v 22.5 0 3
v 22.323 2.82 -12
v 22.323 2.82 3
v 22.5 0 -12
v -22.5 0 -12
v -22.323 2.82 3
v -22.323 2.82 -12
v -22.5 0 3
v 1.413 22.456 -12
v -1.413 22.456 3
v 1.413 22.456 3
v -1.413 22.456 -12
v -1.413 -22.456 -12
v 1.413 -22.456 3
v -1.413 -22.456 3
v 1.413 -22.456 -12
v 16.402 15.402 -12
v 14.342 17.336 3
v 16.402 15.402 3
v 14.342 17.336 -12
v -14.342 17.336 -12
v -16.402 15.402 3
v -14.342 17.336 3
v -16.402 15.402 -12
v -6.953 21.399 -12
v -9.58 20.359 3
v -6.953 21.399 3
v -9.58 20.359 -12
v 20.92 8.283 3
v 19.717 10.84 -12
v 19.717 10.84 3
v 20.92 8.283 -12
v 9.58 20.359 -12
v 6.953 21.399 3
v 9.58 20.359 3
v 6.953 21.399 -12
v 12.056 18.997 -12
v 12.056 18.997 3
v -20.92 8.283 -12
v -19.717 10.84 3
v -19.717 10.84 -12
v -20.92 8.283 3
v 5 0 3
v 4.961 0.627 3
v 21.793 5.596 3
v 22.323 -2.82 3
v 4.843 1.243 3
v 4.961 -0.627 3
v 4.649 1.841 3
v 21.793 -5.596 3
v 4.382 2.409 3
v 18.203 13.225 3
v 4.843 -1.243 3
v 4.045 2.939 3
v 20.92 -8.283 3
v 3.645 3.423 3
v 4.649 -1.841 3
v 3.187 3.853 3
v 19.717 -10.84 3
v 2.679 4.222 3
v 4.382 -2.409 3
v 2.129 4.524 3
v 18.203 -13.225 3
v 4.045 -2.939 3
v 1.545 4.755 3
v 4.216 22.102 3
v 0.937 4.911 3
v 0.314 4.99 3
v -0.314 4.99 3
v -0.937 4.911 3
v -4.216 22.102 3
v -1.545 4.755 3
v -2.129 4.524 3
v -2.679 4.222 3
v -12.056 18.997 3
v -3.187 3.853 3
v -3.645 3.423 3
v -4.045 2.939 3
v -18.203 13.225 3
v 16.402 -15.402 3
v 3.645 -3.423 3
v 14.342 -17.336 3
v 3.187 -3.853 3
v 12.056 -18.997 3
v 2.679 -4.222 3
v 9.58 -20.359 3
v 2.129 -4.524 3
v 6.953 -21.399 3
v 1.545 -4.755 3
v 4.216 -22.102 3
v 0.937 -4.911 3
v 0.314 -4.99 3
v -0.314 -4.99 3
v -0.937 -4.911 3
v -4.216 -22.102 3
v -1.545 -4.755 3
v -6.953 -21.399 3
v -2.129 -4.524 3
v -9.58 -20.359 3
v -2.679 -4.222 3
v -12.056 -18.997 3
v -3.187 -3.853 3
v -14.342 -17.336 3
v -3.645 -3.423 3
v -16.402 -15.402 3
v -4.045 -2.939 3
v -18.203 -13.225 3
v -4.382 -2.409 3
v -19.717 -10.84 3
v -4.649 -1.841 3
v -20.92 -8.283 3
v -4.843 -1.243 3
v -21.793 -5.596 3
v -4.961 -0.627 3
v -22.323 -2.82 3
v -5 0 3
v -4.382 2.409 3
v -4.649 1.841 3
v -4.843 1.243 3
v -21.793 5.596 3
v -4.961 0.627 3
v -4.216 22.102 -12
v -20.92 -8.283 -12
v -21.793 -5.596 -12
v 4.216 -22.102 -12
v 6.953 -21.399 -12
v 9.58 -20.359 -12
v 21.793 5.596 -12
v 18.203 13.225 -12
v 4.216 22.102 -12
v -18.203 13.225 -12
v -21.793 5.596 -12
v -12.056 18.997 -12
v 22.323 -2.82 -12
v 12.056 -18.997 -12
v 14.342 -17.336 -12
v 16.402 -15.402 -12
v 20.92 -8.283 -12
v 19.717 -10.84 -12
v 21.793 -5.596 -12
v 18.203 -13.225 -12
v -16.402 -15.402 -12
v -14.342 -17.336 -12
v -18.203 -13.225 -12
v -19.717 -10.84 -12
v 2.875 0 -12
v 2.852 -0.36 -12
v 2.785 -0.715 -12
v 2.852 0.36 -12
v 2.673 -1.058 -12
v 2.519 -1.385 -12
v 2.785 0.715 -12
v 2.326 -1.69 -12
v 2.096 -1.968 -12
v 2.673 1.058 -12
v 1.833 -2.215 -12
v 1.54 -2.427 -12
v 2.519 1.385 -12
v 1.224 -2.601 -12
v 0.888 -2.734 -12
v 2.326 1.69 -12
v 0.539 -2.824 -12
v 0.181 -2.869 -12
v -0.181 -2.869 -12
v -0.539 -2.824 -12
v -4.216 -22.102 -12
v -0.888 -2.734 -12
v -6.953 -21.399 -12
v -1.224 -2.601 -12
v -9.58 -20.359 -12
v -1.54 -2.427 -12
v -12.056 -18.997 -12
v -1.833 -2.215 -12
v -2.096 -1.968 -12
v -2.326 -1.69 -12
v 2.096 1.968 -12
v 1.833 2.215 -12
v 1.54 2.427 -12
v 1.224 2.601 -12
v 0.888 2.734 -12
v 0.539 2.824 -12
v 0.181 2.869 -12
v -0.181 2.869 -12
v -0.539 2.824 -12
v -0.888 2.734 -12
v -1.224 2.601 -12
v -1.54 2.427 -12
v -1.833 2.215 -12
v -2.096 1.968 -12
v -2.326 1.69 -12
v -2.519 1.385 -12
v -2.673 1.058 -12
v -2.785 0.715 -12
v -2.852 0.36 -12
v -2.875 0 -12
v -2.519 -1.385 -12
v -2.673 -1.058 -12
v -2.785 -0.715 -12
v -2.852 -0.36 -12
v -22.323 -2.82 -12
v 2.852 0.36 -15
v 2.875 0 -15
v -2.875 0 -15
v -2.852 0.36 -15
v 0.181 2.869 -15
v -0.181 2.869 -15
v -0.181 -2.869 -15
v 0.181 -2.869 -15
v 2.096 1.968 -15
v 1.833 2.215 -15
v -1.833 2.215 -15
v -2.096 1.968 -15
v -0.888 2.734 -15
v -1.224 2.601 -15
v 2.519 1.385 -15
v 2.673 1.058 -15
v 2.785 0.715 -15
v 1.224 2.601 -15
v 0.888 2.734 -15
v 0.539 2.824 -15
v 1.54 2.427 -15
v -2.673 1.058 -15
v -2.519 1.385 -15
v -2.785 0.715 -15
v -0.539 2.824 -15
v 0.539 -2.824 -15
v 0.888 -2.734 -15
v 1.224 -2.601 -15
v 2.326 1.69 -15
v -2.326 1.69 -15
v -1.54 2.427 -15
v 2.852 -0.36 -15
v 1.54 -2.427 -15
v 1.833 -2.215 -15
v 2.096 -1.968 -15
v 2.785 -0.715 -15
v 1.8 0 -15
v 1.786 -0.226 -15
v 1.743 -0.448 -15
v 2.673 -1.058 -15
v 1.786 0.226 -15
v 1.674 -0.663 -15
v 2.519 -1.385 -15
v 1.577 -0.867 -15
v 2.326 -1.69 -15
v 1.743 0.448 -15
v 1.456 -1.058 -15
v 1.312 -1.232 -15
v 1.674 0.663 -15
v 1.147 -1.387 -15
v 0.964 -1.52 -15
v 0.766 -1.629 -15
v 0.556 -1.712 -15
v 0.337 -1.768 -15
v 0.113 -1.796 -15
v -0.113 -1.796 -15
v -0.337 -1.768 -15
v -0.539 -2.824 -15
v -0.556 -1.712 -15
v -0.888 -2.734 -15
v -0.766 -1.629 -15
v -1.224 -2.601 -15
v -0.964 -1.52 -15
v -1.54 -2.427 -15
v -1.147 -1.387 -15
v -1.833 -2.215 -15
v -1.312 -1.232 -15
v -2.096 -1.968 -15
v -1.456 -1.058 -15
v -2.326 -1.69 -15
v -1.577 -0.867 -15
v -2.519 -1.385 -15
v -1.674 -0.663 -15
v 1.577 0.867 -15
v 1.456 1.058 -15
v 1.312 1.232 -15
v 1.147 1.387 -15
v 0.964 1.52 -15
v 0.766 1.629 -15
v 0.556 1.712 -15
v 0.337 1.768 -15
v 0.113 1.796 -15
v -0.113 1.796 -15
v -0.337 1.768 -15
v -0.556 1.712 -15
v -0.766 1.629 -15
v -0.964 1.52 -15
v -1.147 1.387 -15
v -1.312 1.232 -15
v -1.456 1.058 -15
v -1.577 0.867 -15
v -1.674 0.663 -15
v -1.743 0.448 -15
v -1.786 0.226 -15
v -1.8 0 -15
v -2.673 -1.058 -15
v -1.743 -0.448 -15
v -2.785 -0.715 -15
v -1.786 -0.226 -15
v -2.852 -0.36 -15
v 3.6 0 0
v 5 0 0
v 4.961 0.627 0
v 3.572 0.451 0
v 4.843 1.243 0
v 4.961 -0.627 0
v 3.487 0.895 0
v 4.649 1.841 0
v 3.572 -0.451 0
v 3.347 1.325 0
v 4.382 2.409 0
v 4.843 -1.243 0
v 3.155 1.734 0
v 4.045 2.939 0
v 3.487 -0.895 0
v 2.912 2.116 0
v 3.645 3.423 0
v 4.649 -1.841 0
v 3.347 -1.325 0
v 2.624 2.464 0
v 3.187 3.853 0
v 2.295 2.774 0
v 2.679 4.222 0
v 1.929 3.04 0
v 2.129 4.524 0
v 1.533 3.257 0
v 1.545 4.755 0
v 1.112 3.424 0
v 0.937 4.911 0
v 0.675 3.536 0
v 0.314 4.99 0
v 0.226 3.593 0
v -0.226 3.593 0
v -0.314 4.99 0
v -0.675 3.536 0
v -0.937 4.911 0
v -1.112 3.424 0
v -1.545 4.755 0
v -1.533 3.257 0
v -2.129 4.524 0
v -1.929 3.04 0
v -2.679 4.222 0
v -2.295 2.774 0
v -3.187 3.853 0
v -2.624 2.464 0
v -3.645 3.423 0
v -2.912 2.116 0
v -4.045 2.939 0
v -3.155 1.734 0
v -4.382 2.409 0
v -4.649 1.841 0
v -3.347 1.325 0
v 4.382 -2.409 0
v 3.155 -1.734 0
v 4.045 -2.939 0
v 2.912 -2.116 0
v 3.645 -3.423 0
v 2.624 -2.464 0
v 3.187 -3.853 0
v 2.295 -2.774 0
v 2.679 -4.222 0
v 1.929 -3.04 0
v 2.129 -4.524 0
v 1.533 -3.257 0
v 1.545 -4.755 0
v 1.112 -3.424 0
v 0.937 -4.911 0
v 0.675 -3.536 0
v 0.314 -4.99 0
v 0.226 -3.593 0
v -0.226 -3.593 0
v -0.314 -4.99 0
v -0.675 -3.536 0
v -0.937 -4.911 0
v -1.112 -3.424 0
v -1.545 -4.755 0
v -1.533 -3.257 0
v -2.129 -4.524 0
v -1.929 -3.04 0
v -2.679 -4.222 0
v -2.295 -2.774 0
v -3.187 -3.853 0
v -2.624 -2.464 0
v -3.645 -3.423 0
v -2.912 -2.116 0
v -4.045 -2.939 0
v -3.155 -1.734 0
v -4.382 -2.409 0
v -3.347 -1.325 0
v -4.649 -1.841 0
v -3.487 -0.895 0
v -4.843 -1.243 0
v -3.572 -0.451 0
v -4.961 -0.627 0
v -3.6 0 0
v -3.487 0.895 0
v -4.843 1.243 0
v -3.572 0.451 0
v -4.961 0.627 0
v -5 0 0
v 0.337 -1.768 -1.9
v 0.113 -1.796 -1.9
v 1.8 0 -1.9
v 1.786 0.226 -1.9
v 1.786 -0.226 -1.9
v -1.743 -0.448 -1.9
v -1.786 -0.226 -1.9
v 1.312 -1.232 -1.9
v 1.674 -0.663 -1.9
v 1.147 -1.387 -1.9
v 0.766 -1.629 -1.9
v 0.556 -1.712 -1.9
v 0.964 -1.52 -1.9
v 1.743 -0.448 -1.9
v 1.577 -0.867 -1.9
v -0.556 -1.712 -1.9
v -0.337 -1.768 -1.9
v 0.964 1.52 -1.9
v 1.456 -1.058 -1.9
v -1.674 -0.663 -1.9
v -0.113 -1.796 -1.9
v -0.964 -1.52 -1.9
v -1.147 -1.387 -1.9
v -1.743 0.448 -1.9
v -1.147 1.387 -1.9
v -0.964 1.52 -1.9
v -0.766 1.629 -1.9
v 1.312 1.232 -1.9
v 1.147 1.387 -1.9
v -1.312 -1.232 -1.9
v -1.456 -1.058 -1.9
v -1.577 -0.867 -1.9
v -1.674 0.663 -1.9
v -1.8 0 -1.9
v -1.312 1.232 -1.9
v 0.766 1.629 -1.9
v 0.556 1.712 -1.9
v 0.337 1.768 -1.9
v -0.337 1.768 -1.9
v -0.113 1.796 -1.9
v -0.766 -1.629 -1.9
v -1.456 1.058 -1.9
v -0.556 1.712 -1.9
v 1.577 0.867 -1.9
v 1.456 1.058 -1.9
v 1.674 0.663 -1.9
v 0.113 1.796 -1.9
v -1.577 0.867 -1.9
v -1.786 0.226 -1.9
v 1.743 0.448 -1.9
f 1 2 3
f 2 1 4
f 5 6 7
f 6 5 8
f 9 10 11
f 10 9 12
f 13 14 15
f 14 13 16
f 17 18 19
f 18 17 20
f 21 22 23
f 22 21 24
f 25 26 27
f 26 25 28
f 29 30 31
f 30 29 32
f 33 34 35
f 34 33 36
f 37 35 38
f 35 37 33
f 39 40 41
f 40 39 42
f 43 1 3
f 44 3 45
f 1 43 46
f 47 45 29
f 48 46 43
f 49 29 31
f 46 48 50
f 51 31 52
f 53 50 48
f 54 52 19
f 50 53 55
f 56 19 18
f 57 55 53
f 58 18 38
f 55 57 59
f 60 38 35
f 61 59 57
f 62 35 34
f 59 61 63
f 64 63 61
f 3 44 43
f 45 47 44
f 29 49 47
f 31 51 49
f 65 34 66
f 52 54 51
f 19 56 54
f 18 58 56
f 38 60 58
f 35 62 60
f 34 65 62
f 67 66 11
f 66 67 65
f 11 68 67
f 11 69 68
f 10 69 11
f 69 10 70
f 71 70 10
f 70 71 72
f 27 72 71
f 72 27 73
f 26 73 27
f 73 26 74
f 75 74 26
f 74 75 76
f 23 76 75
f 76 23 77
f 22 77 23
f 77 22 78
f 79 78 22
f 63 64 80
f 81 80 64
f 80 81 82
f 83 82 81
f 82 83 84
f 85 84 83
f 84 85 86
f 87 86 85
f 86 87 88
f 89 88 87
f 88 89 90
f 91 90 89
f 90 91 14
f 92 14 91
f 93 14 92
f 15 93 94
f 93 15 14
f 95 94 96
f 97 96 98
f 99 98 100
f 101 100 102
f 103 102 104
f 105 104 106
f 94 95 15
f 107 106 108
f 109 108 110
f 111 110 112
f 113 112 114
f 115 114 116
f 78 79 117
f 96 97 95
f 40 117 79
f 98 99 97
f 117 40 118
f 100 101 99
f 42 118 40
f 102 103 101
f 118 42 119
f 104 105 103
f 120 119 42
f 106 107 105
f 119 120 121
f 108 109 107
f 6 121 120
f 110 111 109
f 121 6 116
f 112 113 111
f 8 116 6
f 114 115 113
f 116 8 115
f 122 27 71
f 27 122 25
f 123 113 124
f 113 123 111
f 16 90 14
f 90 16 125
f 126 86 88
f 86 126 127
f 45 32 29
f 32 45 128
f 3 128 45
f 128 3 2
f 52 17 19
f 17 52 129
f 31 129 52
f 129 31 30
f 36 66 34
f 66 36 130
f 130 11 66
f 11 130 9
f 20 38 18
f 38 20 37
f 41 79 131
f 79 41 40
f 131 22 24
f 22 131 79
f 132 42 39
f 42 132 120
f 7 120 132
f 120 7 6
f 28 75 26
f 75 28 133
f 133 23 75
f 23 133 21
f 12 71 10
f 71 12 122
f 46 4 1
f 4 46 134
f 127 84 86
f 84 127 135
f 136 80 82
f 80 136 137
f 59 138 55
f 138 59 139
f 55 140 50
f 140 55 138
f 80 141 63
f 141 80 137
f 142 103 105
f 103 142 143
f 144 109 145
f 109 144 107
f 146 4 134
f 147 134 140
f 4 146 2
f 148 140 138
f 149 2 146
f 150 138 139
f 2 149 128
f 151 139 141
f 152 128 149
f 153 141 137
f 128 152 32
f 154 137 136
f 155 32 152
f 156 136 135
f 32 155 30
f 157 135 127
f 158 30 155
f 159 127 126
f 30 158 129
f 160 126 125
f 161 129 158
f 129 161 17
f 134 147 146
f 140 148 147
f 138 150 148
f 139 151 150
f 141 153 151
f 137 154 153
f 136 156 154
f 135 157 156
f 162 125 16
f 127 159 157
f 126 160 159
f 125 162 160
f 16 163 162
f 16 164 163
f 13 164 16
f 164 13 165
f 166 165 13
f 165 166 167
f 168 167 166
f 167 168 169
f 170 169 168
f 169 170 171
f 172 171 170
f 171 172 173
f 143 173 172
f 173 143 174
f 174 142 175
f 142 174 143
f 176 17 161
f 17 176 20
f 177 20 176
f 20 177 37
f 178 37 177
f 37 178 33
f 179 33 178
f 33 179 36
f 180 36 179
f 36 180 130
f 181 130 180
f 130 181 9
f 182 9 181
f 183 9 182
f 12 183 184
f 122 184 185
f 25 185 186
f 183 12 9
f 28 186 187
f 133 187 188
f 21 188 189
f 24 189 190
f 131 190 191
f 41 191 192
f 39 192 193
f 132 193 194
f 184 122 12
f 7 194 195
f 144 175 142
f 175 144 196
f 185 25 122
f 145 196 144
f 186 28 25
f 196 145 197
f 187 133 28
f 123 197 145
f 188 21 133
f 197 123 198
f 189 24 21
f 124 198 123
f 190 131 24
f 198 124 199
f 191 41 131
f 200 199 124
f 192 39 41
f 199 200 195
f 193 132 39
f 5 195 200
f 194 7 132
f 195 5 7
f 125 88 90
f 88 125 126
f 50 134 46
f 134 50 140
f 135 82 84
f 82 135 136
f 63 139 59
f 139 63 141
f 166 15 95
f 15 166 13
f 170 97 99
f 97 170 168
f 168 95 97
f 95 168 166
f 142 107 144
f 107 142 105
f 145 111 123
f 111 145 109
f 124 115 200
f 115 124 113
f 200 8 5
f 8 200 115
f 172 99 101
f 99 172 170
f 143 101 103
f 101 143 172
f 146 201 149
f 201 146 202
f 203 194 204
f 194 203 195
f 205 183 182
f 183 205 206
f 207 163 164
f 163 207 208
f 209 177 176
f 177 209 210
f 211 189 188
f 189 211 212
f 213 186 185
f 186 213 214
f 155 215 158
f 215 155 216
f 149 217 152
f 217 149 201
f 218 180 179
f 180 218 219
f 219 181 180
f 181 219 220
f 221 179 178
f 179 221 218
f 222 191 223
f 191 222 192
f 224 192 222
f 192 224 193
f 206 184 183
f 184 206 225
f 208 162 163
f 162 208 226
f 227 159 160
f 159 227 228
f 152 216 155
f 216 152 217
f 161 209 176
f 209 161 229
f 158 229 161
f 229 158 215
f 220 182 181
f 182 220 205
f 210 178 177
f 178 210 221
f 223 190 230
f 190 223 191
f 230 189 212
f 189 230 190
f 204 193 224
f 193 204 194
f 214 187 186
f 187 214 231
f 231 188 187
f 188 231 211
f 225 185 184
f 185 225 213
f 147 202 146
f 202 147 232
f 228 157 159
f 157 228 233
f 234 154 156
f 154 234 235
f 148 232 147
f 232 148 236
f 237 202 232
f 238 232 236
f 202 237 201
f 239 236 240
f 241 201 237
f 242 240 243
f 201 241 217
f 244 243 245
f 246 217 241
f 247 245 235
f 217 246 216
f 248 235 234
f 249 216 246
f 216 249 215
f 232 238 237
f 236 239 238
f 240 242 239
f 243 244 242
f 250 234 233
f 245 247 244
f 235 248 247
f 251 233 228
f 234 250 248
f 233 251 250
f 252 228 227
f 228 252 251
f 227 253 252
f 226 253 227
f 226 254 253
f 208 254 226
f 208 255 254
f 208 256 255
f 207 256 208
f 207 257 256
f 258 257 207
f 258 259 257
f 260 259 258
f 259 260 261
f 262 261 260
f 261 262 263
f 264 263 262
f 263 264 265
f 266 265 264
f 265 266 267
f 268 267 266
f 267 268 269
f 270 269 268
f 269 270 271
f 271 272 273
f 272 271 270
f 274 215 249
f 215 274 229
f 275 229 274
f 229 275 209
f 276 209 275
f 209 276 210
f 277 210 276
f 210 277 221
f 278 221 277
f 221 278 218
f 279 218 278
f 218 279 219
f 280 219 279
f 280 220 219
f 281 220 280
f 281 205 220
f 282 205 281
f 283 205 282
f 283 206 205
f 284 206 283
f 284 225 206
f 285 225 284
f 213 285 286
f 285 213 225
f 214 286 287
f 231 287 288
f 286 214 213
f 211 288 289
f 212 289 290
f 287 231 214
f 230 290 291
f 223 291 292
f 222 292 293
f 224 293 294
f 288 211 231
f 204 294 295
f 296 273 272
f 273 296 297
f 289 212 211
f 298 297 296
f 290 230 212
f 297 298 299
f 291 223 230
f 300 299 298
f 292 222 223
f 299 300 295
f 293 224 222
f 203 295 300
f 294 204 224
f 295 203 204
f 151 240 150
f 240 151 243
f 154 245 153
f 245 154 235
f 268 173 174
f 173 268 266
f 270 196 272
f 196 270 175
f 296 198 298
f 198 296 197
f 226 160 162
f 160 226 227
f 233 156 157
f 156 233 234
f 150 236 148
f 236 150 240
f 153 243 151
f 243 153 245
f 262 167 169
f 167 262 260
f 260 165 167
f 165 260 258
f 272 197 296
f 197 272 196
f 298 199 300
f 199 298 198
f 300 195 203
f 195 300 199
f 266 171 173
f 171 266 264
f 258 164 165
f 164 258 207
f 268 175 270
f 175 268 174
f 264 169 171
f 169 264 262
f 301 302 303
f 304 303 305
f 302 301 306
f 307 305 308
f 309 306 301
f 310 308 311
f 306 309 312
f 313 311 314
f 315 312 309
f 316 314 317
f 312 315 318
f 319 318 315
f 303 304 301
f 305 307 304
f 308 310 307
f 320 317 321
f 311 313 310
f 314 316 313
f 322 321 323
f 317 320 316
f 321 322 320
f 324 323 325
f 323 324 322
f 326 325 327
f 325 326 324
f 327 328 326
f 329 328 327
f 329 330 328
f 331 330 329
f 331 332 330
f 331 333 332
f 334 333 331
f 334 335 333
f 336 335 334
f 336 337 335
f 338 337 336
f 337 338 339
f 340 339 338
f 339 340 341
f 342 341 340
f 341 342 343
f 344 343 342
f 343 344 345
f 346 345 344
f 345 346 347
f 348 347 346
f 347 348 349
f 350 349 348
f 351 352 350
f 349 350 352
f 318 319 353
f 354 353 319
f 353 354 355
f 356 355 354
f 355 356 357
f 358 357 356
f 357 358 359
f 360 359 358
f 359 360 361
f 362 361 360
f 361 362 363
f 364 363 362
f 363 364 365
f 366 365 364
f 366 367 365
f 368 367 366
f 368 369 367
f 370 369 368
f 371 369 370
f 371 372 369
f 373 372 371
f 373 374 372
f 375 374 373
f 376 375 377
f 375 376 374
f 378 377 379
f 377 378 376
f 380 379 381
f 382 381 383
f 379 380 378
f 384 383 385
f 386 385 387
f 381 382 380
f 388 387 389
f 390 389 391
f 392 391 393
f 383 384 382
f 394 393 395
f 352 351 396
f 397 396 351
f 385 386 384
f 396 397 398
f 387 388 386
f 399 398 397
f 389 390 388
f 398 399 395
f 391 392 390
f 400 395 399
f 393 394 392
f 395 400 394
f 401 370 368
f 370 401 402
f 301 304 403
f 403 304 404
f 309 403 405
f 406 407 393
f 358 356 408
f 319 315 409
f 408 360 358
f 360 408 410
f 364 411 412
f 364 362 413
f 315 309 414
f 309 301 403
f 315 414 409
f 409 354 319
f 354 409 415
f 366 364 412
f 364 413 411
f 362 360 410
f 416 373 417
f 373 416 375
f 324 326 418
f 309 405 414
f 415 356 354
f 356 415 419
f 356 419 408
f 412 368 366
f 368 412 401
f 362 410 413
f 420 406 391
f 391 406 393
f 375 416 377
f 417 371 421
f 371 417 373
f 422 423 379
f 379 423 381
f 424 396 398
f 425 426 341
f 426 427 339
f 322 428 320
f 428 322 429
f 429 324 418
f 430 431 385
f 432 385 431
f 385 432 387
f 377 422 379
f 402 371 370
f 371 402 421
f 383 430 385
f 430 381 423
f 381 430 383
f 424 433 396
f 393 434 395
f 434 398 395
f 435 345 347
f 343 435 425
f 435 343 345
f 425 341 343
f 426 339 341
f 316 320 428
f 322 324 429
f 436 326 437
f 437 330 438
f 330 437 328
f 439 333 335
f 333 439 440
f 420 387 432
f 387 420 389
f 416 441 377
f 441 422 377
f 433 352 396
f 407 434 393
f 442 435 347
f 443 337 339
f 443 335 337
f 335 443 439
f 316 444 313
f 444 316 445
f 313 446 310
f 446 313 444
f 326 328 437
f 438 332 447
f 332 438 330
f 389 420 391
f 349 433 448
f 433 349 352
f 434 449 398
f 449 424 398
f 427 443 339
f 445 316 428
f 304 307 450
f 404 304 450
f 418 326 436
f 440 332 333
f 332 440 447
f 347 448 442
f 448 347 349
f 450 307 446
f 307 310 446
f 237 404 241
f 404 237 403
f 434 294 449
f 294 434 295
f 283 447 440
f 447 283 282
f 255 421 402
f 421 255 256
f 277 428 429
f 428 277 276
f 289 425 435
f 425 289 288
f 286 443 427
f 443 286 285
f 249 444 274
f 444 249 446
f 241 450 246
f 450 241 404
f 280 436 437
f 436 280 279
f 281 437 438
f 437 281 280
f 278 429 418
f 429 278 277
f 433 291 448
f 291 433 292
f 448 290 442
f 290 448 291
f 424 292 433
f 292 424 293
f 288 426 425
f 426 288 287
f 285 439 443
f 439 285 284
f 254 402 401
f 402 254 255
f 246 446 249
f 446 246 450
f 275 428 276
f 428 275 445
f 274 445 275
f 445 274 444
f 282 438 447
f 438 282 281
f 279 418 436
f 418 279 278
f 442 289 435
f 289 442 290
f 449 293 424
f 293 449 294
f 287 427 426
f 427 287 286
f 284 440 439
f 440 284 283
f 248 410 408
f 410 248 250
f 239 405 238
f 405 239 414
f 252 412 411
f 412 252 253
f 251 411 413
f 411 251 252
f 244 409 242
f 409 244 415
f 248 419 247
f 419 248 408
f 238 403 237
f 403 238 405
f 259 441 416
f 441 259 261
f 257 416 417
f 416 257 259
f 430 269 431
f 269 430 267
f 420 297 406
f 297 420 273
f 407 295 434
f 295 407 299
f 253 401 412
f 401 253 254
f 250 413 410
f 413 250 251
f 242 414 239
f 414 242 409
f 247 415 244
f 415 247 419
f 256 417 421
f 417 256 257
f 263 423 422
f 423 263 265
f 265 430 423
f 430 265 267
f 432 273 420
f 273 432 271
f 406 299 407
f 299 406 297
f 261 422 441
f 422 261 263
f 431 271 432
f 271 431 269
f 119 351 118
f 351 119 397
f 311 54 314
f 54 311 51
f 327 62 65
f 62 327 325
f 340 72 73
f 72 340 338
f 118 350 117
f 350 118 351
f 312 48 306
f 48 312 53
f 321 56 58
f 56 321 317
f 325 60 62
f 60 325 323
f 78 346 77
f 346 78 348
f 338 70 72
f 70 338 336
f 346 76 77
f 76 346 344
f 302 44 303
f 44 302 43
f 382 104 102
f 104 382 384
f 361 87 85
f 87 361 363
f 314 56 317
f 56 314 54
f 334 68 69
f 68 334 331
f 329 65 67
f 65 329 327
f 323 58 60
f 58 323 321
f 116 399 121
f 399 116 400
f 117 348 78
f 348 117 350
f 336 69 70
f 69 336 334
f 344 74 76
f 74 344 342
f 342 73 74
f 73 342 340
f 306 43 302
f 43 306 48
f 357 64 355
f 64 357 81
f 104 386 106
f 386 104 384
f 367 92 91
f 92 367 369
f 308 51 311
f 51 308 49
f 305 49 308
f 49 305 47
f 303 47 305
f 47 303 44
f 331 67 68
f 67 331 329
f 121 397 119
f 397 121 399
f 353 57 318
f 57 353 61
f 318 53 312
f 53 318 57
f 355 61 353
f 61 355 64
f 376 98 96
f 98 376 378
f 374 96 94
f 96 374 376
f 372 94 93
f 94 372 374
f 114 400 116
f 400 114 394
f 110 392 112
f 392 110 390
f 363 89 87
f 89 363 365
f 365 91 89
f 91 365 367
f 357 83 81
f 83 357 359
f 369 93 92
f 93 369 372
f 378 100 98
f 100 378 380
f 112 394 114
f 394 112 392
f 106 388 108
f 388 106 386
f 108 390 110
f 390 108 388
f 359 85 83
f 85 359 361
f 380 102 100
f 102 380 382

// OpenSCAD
$fn = 50;

difference() {
	union() {
		translate(v = [0, 0, -12.0]) {
			cylinder(h = 15, r = 22.5);
		}
		#translate(v = [0, 0, -15.0]) {
			cylinder(h = 15, r = 2.875);
		}
	}
	union() {
		translate(v = [0, 0, 0]) {
			rotate(a = [0, 0, 0]) {
				difference() {
					union() {
						translate(v = [0, 0, -15.0]) {
							cylinder(h = 15, r = 1.5);
						}
						translate(v = [0, 0, -1.9]) {
							cylinder(h = 1.9, r1 = 1.8, r2 = 3.6);
						}
						translate(v = [0, 0, -15.0]) {
							cylinder(h = 15, r = 1.8);
						}
						translate(v = [0, 0, -15.0]) {
							cylinder(h = 15, r = 1.5);
						}
					}
					union();
				}
			}
		}
		#cylinder(h = 3, r = 5.0);
	}
}
